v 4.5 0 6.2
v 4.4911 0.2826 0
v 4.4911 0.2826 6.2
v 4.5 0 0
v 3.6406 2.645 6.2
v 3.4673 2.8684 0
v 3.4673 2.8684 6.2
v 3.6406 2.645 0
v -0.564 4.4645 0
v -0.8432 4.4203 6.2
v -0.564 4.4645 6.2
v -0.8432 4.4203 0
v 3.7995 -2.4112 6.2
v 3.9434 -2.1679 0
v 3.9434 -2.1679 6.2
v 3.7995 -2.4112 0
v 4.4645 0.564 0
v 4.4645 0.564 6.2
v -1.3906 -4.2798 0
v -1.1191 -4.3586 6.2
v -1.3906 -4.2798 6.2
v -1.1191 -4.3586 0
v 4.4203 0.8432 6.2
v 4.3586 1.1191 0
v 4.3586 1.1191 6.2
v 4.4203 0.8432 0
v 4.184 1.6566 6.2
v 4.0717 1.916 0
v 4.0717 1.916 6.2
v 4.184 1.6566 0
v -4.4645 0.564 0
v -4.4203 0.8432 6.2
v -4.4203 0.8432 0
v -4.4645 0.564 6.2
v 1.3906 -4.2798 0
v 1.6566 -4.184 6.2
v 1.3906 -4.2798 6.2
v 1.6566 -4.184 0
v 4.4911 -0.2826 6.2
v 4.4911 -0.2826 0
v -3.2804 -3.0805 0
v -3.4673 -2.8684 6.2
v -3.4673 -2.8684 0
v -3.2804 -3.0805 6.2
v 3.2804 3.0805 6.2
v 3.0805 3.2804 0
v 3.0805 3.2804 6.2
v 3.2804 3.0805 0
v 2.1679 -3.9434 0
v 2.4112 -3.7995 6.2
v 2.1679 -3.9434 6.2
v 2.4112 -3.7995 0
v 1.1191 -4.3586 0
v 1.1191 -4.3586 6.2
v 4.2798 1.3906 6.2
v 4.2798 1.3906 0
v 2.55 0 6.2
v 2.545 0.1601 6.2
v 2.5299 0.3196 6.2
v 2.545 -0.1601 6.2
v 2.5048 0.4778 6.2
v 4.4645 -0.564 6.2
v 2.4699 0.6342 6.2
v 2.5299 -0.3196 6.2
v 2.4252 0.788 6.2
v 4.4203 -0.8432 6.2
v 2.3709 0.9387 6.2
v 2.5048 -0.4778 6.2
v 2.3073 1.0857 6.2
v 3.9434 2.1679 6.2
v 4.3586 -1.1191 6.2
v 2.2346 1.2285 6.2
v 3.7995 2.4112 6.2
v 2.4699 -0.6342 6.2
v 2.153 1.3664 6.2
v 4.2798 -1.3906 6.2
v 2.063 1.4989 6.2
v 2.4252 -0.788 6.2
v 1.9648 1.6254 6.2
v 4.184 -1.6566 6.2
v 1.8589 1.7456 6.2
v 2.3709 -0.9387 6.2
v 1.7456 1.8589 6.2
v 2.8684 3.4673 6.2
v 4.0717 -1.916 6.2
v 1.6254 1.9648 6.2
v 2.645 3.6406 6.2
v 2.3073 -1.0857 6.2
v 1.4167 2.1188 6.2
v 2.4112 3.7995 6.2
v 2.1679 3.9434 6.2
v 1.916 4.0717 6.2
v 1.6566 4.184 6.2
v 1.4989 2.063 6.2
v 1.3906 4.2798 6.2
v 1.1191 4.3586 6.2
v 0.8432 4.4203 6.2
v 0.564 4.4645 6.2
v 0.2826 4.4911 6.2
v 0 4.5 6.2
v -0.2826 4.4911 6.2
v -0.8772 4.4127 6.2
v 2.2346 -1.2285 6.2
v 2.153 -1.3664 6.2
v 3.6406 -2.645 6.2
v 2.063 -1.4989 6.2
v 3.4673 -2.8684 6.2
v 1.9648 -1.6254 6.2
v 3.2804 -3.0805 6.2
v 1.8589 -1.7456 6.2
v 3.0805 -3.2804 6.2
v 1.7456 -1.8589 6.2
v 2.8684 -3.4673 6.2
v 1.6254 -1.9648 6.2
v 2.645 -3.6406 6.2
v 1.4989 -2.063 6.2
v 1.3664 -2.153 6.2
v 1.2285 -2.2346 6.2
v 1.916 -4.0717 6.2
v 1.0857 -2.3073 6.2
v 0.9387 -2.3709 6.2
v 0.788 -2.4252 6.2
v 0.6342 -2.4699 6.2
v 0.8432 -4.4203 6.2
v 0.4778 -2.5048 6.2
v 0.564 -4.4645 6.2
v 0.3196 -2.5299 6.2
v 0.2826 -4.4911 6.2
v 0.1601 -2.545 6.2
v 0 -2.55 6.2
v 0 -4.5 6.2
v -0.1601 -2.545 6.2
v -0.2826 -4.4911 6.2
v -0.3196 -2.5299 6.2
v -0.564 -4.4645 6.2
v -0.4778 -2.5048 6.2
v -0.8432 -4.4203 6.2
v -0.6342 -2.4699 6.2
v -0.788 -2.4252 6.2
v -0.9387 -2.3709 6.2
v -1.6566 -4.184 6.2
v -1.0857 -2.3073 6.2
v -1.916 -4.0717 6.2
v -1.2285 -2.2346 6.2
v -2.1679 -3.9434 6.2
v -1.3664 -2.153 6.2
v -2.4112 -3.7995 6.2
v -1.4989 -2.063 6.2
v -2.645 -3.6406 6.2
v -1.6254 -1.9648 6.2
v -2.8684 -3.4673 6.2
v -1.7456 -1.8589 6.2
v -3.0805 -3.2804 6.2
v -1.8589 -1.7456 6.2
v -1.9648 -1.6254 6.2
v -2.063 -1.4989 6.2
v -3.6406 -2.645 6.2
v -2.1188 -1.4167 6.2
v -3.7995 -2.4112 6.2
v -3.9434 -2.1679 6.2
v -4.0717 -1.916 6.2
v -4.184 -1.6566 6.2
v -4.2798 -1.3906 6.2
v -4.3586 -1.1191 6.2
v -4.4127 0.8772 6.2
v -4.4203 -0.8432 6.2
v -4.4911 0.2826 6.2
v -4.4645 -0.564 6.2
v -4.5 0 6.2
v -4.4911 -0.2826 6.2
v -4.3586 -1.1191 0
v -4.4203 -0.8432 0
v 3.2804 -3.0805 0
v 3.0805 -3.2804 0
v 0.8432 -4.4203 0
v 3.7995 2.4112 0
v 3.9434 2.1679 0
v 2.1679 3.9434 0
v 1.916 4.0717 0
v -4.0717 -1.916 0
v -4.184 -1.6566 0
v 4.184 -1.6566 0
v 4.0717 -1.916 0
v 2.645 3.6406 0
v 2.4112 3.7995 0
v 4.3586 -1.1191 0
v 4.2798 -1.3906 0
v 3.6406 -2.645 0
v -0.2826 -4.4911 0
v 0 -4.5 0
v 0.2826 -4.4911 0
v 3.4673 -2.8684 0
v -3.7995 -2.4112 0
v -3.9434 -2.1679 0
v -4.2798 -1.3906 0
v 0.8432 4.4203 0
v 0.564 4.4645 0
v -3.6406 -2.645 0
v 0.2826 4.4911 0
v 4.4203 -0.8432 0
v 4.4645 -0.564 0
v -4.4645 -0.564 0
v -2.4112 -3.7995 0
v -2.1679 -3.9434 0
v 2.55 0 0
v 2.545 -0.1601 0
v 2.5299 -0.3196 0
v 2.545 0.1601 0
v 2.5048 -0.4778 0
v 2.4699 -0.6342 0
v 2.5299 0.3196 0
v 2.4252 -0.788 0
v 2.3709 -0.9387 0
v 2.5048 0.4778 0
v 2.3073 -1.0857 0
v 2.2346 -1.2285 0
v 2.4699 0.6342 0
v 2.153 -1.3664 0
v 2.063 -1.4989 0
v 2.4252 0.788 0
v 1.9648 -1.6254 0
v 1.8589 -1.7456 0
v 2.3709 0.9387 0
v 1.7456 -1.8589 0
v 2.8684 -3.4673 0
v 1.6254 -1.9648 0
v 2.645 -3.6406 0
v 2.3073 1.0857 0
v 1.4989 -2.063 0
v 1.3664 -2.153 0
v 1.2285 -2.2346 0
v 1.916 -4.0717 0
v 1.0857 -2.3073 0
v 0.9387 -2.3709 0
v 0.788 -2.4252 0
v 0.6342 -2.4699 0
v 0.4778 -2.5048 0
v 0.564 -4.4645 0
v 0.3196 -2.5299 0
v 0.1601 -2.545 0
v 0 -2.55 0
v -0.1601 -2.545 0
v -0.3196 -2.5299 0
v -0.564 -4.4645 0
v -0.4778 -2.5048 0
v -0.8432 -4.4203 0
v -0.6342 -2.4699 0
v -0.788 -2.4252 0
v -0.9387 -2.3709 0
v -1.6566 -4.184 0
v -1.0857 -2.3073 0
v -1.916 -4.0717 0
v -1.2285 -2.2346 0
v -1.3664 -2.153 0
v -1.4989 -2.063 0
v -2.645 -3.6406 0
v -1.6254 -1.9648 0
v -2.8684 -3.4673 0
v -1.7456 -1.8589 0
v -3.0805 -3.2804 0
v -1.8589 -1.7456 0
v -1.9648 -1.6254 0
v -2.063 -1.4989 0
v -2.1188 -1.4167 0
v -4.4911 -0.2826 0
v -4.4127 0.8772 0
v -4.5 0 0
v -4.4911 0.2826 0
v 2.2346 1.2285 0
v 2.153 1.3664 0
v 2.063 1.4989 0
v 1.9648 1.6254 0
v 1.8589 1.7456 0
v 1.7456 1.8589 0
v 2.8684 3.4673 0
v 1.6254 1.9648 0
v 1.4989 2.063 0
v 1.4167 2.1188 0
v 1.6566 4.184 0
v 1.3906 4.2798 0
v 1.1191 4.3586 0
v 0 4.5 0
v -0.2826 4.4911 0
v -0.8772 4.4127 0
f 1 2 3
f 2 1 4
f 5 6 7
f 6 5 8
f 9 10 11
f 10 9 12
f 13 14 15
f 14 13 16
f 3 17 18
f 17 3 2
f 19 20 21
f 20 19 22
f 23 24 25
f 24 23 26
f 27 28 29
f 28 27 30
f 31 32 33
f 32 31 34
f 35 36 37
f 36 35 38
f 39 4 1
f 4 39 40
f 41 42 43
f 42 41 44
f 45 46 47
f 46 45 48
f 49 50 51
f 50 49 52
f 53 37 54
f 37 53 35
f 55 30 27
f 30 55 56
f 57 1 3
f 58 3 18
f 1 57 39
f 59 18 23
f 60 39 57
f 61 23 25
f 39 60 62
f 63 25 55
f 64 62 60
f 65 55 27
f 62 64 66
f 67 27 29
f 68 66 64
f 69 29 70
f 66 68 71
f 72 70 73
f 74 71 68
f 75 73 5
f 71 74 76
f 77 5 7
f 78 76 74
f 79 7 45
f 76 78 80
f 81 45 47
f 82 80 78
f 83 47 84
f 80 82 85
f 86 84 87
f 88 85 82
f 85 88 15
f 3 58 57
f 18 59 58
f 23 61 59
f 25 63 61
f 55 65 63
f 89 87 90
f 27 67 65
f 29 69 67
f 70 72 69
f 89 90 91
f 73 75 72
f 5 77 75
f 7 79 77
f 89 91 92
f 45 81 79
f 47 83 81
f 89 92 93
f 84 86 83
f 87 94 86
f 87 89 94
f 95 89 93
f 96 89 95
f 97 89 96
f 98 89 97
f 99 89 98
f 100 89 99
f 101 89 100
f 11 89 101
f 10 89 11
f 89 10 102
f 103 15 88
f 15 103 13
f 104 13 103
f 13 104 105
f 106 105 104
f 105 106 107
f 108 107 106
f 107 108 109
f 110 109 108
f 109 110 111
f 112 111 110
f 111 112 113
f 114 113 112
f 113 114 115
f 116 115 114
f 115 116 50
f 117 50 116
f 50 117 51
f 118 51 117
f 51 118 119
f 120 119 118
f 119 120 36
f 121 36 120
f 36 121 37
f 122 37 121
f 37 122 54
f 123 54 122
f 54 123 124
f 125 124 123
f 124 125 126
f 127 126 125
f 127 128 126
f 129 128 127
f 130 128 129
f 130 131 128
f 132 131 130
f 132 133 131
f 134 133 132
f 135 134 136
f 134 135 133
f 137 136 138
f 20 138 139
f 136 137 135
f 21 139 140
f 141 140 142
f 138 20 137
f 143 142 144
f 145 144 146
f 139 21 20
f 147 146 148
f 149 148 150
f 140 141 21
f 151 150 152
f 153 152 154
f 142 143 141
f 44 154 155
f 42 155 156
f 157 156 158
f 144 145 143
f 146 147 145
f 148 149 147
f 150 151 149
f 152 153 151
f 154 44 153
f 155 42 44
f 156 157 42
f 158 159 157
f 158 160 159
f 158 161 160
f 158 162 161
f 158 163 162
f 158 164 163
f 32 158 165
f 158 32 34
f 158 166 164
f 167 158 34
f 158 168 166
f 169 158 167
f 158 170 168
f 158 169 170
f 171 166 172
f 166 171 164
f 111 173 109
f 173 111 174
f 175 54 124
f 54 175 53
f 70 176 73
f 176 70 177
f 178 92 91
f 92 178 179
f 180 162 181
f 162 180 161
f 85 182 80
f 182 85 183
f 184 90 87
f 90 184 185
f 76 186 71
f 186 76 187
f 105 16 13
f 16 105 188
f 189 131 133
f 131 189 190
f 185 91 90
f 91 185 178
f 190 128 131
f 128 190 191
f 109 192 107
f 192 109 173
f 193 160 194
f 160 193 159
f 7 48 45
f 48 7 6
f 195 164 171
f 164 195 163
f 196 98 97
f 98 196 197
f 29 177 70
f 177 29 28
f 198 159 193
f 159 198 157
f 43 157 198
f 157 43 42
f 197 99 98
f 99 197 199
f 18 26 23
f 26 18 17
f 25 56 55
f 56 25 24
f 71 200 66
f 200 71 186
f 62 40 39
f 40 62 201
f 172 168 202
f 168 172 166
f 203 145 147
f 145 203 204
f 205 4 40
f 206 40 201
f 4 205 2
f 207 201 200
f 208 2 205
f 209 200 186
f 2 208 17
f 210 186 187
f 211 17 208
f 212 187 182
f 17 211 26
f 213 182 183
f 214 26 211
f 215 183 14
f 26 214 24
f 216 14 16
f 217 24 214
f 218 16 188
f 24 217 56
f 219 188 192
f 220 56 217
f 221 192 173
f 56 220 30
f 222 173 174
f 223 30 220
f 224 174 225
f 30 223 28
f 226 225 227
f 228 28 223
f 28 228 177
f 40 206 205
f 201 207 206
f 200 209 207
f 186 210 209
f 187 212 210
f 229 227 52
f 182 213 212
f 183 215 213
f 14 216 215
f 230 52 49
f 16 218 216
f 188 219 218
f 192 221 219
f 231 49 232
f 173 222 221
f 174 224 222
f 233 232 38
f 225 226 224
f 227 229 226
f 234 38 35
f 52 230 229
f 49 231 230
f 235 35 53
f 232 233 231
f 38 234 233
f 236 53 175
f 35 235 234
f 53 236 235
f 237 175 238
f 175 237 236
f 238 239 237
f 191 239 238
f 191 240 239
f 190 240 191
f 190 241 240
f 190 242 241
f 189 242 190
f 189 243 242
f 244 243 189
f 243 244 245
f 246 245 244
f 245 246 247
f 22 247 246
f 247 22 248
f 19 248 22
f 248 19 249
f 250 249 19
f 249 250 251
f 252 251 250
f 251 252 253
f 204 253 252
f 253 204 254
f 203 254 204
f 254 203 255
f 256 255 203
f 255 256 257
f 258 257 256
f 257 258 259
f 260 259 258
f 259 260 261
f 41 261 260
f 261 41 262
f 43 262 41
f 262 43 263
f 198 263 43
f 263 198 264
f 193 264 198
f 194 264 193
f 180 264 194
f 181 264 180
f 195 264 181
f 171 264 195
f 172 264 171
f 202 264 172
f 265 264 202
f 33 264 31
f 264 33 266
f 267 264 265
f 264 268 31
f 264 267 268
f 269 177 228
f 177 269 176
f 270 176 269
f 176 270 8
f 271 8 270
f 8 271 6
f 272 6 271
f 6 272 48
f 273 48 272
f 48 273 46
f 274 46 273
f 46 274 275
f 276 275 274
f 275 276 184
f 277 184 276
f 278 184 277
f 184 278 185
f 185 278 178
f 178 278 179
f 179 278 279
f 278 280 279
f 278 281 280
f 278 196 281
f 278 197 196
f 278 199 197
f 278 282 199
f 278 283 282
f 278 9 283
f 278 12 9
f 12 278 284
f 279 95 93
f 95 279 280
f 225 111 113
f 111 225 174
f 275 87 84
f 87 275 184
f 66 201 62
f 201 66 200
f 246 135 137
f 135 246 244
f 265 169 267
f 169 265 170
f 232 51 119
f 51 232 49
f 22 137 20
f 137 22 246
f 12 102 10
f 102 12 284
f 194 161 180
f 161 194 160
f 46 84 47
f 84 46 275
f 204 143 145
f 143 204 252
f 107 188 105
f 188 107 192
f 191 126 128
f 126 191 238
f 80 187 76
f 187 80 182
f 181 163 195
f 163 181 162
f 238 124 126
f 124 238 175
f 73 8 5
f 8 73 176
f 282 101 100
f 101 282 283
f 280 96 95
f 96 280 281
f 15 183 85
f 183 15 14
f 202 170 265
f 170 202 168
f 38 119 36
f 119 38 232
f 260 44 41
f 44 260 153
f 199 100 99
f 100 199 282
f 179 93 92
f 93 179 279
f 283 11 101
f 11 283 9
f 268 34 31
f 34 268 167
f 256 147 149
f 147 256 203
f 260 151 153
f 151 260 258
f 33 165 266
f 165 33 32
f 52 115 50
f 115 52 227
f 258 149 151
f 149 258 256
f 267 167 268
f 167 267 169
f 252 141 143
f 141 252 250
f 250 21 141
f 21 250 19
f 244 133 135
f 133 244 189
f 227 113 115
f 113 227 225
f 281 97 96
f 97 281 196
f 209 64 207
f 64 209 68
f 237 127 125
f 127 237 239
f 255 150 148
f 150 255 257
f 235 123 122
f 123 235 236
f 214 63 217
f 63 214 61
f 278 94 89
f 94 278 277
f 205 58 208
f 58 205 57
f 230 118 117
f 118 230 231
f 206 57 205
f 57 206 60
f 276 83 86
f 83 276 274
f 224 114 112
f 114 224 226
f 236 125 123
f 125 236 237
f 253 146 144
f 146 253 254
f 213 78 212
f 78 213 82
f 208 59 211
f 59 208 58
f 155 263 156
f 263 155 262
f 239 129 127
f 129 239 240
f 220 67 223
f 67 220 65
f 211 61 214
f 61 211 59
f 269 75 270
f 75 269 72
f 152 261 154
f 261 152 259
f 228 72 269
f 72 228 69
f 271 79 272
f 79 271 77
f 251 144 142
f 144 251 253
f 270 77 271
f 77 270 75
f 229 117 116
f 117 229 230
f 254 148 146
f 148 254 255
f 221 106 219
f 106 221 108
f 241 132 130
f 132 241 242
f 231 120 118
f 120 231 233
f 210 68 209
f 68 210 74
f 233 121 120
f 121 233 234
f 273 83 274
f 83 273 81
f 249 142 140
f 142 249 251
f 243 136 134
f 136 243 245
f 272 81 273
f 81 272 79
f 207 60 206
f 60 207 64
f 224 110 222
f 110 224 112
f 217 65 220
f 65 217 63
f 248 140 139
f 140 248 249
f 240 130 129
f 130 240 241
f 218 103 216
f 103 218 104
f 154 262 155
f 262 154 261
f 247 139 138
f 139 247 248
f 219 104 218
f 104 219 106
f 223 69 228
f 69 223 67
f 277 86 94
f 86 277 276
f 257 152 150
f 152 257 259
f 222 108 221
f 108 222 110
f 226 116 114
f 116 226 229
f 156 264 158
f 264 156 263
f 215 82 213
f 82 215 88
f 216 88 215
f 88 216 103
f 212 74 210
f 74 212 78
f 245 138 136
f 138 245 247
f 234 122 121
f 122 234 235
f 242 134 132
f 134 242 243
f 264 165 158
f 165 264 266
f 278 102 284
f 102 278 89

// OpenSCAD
difference(){
    cylinder(r=9/2,h=6.2,$fn=100);
    translate([0,0,-.1]) cylinder(r=5.1/2,h=6.4,$fn=100);
    translate([0,0,-.1]) rotate([0,0,45]) translate([-2.5,0,0]) cube([5,12,6.4]);
    }
